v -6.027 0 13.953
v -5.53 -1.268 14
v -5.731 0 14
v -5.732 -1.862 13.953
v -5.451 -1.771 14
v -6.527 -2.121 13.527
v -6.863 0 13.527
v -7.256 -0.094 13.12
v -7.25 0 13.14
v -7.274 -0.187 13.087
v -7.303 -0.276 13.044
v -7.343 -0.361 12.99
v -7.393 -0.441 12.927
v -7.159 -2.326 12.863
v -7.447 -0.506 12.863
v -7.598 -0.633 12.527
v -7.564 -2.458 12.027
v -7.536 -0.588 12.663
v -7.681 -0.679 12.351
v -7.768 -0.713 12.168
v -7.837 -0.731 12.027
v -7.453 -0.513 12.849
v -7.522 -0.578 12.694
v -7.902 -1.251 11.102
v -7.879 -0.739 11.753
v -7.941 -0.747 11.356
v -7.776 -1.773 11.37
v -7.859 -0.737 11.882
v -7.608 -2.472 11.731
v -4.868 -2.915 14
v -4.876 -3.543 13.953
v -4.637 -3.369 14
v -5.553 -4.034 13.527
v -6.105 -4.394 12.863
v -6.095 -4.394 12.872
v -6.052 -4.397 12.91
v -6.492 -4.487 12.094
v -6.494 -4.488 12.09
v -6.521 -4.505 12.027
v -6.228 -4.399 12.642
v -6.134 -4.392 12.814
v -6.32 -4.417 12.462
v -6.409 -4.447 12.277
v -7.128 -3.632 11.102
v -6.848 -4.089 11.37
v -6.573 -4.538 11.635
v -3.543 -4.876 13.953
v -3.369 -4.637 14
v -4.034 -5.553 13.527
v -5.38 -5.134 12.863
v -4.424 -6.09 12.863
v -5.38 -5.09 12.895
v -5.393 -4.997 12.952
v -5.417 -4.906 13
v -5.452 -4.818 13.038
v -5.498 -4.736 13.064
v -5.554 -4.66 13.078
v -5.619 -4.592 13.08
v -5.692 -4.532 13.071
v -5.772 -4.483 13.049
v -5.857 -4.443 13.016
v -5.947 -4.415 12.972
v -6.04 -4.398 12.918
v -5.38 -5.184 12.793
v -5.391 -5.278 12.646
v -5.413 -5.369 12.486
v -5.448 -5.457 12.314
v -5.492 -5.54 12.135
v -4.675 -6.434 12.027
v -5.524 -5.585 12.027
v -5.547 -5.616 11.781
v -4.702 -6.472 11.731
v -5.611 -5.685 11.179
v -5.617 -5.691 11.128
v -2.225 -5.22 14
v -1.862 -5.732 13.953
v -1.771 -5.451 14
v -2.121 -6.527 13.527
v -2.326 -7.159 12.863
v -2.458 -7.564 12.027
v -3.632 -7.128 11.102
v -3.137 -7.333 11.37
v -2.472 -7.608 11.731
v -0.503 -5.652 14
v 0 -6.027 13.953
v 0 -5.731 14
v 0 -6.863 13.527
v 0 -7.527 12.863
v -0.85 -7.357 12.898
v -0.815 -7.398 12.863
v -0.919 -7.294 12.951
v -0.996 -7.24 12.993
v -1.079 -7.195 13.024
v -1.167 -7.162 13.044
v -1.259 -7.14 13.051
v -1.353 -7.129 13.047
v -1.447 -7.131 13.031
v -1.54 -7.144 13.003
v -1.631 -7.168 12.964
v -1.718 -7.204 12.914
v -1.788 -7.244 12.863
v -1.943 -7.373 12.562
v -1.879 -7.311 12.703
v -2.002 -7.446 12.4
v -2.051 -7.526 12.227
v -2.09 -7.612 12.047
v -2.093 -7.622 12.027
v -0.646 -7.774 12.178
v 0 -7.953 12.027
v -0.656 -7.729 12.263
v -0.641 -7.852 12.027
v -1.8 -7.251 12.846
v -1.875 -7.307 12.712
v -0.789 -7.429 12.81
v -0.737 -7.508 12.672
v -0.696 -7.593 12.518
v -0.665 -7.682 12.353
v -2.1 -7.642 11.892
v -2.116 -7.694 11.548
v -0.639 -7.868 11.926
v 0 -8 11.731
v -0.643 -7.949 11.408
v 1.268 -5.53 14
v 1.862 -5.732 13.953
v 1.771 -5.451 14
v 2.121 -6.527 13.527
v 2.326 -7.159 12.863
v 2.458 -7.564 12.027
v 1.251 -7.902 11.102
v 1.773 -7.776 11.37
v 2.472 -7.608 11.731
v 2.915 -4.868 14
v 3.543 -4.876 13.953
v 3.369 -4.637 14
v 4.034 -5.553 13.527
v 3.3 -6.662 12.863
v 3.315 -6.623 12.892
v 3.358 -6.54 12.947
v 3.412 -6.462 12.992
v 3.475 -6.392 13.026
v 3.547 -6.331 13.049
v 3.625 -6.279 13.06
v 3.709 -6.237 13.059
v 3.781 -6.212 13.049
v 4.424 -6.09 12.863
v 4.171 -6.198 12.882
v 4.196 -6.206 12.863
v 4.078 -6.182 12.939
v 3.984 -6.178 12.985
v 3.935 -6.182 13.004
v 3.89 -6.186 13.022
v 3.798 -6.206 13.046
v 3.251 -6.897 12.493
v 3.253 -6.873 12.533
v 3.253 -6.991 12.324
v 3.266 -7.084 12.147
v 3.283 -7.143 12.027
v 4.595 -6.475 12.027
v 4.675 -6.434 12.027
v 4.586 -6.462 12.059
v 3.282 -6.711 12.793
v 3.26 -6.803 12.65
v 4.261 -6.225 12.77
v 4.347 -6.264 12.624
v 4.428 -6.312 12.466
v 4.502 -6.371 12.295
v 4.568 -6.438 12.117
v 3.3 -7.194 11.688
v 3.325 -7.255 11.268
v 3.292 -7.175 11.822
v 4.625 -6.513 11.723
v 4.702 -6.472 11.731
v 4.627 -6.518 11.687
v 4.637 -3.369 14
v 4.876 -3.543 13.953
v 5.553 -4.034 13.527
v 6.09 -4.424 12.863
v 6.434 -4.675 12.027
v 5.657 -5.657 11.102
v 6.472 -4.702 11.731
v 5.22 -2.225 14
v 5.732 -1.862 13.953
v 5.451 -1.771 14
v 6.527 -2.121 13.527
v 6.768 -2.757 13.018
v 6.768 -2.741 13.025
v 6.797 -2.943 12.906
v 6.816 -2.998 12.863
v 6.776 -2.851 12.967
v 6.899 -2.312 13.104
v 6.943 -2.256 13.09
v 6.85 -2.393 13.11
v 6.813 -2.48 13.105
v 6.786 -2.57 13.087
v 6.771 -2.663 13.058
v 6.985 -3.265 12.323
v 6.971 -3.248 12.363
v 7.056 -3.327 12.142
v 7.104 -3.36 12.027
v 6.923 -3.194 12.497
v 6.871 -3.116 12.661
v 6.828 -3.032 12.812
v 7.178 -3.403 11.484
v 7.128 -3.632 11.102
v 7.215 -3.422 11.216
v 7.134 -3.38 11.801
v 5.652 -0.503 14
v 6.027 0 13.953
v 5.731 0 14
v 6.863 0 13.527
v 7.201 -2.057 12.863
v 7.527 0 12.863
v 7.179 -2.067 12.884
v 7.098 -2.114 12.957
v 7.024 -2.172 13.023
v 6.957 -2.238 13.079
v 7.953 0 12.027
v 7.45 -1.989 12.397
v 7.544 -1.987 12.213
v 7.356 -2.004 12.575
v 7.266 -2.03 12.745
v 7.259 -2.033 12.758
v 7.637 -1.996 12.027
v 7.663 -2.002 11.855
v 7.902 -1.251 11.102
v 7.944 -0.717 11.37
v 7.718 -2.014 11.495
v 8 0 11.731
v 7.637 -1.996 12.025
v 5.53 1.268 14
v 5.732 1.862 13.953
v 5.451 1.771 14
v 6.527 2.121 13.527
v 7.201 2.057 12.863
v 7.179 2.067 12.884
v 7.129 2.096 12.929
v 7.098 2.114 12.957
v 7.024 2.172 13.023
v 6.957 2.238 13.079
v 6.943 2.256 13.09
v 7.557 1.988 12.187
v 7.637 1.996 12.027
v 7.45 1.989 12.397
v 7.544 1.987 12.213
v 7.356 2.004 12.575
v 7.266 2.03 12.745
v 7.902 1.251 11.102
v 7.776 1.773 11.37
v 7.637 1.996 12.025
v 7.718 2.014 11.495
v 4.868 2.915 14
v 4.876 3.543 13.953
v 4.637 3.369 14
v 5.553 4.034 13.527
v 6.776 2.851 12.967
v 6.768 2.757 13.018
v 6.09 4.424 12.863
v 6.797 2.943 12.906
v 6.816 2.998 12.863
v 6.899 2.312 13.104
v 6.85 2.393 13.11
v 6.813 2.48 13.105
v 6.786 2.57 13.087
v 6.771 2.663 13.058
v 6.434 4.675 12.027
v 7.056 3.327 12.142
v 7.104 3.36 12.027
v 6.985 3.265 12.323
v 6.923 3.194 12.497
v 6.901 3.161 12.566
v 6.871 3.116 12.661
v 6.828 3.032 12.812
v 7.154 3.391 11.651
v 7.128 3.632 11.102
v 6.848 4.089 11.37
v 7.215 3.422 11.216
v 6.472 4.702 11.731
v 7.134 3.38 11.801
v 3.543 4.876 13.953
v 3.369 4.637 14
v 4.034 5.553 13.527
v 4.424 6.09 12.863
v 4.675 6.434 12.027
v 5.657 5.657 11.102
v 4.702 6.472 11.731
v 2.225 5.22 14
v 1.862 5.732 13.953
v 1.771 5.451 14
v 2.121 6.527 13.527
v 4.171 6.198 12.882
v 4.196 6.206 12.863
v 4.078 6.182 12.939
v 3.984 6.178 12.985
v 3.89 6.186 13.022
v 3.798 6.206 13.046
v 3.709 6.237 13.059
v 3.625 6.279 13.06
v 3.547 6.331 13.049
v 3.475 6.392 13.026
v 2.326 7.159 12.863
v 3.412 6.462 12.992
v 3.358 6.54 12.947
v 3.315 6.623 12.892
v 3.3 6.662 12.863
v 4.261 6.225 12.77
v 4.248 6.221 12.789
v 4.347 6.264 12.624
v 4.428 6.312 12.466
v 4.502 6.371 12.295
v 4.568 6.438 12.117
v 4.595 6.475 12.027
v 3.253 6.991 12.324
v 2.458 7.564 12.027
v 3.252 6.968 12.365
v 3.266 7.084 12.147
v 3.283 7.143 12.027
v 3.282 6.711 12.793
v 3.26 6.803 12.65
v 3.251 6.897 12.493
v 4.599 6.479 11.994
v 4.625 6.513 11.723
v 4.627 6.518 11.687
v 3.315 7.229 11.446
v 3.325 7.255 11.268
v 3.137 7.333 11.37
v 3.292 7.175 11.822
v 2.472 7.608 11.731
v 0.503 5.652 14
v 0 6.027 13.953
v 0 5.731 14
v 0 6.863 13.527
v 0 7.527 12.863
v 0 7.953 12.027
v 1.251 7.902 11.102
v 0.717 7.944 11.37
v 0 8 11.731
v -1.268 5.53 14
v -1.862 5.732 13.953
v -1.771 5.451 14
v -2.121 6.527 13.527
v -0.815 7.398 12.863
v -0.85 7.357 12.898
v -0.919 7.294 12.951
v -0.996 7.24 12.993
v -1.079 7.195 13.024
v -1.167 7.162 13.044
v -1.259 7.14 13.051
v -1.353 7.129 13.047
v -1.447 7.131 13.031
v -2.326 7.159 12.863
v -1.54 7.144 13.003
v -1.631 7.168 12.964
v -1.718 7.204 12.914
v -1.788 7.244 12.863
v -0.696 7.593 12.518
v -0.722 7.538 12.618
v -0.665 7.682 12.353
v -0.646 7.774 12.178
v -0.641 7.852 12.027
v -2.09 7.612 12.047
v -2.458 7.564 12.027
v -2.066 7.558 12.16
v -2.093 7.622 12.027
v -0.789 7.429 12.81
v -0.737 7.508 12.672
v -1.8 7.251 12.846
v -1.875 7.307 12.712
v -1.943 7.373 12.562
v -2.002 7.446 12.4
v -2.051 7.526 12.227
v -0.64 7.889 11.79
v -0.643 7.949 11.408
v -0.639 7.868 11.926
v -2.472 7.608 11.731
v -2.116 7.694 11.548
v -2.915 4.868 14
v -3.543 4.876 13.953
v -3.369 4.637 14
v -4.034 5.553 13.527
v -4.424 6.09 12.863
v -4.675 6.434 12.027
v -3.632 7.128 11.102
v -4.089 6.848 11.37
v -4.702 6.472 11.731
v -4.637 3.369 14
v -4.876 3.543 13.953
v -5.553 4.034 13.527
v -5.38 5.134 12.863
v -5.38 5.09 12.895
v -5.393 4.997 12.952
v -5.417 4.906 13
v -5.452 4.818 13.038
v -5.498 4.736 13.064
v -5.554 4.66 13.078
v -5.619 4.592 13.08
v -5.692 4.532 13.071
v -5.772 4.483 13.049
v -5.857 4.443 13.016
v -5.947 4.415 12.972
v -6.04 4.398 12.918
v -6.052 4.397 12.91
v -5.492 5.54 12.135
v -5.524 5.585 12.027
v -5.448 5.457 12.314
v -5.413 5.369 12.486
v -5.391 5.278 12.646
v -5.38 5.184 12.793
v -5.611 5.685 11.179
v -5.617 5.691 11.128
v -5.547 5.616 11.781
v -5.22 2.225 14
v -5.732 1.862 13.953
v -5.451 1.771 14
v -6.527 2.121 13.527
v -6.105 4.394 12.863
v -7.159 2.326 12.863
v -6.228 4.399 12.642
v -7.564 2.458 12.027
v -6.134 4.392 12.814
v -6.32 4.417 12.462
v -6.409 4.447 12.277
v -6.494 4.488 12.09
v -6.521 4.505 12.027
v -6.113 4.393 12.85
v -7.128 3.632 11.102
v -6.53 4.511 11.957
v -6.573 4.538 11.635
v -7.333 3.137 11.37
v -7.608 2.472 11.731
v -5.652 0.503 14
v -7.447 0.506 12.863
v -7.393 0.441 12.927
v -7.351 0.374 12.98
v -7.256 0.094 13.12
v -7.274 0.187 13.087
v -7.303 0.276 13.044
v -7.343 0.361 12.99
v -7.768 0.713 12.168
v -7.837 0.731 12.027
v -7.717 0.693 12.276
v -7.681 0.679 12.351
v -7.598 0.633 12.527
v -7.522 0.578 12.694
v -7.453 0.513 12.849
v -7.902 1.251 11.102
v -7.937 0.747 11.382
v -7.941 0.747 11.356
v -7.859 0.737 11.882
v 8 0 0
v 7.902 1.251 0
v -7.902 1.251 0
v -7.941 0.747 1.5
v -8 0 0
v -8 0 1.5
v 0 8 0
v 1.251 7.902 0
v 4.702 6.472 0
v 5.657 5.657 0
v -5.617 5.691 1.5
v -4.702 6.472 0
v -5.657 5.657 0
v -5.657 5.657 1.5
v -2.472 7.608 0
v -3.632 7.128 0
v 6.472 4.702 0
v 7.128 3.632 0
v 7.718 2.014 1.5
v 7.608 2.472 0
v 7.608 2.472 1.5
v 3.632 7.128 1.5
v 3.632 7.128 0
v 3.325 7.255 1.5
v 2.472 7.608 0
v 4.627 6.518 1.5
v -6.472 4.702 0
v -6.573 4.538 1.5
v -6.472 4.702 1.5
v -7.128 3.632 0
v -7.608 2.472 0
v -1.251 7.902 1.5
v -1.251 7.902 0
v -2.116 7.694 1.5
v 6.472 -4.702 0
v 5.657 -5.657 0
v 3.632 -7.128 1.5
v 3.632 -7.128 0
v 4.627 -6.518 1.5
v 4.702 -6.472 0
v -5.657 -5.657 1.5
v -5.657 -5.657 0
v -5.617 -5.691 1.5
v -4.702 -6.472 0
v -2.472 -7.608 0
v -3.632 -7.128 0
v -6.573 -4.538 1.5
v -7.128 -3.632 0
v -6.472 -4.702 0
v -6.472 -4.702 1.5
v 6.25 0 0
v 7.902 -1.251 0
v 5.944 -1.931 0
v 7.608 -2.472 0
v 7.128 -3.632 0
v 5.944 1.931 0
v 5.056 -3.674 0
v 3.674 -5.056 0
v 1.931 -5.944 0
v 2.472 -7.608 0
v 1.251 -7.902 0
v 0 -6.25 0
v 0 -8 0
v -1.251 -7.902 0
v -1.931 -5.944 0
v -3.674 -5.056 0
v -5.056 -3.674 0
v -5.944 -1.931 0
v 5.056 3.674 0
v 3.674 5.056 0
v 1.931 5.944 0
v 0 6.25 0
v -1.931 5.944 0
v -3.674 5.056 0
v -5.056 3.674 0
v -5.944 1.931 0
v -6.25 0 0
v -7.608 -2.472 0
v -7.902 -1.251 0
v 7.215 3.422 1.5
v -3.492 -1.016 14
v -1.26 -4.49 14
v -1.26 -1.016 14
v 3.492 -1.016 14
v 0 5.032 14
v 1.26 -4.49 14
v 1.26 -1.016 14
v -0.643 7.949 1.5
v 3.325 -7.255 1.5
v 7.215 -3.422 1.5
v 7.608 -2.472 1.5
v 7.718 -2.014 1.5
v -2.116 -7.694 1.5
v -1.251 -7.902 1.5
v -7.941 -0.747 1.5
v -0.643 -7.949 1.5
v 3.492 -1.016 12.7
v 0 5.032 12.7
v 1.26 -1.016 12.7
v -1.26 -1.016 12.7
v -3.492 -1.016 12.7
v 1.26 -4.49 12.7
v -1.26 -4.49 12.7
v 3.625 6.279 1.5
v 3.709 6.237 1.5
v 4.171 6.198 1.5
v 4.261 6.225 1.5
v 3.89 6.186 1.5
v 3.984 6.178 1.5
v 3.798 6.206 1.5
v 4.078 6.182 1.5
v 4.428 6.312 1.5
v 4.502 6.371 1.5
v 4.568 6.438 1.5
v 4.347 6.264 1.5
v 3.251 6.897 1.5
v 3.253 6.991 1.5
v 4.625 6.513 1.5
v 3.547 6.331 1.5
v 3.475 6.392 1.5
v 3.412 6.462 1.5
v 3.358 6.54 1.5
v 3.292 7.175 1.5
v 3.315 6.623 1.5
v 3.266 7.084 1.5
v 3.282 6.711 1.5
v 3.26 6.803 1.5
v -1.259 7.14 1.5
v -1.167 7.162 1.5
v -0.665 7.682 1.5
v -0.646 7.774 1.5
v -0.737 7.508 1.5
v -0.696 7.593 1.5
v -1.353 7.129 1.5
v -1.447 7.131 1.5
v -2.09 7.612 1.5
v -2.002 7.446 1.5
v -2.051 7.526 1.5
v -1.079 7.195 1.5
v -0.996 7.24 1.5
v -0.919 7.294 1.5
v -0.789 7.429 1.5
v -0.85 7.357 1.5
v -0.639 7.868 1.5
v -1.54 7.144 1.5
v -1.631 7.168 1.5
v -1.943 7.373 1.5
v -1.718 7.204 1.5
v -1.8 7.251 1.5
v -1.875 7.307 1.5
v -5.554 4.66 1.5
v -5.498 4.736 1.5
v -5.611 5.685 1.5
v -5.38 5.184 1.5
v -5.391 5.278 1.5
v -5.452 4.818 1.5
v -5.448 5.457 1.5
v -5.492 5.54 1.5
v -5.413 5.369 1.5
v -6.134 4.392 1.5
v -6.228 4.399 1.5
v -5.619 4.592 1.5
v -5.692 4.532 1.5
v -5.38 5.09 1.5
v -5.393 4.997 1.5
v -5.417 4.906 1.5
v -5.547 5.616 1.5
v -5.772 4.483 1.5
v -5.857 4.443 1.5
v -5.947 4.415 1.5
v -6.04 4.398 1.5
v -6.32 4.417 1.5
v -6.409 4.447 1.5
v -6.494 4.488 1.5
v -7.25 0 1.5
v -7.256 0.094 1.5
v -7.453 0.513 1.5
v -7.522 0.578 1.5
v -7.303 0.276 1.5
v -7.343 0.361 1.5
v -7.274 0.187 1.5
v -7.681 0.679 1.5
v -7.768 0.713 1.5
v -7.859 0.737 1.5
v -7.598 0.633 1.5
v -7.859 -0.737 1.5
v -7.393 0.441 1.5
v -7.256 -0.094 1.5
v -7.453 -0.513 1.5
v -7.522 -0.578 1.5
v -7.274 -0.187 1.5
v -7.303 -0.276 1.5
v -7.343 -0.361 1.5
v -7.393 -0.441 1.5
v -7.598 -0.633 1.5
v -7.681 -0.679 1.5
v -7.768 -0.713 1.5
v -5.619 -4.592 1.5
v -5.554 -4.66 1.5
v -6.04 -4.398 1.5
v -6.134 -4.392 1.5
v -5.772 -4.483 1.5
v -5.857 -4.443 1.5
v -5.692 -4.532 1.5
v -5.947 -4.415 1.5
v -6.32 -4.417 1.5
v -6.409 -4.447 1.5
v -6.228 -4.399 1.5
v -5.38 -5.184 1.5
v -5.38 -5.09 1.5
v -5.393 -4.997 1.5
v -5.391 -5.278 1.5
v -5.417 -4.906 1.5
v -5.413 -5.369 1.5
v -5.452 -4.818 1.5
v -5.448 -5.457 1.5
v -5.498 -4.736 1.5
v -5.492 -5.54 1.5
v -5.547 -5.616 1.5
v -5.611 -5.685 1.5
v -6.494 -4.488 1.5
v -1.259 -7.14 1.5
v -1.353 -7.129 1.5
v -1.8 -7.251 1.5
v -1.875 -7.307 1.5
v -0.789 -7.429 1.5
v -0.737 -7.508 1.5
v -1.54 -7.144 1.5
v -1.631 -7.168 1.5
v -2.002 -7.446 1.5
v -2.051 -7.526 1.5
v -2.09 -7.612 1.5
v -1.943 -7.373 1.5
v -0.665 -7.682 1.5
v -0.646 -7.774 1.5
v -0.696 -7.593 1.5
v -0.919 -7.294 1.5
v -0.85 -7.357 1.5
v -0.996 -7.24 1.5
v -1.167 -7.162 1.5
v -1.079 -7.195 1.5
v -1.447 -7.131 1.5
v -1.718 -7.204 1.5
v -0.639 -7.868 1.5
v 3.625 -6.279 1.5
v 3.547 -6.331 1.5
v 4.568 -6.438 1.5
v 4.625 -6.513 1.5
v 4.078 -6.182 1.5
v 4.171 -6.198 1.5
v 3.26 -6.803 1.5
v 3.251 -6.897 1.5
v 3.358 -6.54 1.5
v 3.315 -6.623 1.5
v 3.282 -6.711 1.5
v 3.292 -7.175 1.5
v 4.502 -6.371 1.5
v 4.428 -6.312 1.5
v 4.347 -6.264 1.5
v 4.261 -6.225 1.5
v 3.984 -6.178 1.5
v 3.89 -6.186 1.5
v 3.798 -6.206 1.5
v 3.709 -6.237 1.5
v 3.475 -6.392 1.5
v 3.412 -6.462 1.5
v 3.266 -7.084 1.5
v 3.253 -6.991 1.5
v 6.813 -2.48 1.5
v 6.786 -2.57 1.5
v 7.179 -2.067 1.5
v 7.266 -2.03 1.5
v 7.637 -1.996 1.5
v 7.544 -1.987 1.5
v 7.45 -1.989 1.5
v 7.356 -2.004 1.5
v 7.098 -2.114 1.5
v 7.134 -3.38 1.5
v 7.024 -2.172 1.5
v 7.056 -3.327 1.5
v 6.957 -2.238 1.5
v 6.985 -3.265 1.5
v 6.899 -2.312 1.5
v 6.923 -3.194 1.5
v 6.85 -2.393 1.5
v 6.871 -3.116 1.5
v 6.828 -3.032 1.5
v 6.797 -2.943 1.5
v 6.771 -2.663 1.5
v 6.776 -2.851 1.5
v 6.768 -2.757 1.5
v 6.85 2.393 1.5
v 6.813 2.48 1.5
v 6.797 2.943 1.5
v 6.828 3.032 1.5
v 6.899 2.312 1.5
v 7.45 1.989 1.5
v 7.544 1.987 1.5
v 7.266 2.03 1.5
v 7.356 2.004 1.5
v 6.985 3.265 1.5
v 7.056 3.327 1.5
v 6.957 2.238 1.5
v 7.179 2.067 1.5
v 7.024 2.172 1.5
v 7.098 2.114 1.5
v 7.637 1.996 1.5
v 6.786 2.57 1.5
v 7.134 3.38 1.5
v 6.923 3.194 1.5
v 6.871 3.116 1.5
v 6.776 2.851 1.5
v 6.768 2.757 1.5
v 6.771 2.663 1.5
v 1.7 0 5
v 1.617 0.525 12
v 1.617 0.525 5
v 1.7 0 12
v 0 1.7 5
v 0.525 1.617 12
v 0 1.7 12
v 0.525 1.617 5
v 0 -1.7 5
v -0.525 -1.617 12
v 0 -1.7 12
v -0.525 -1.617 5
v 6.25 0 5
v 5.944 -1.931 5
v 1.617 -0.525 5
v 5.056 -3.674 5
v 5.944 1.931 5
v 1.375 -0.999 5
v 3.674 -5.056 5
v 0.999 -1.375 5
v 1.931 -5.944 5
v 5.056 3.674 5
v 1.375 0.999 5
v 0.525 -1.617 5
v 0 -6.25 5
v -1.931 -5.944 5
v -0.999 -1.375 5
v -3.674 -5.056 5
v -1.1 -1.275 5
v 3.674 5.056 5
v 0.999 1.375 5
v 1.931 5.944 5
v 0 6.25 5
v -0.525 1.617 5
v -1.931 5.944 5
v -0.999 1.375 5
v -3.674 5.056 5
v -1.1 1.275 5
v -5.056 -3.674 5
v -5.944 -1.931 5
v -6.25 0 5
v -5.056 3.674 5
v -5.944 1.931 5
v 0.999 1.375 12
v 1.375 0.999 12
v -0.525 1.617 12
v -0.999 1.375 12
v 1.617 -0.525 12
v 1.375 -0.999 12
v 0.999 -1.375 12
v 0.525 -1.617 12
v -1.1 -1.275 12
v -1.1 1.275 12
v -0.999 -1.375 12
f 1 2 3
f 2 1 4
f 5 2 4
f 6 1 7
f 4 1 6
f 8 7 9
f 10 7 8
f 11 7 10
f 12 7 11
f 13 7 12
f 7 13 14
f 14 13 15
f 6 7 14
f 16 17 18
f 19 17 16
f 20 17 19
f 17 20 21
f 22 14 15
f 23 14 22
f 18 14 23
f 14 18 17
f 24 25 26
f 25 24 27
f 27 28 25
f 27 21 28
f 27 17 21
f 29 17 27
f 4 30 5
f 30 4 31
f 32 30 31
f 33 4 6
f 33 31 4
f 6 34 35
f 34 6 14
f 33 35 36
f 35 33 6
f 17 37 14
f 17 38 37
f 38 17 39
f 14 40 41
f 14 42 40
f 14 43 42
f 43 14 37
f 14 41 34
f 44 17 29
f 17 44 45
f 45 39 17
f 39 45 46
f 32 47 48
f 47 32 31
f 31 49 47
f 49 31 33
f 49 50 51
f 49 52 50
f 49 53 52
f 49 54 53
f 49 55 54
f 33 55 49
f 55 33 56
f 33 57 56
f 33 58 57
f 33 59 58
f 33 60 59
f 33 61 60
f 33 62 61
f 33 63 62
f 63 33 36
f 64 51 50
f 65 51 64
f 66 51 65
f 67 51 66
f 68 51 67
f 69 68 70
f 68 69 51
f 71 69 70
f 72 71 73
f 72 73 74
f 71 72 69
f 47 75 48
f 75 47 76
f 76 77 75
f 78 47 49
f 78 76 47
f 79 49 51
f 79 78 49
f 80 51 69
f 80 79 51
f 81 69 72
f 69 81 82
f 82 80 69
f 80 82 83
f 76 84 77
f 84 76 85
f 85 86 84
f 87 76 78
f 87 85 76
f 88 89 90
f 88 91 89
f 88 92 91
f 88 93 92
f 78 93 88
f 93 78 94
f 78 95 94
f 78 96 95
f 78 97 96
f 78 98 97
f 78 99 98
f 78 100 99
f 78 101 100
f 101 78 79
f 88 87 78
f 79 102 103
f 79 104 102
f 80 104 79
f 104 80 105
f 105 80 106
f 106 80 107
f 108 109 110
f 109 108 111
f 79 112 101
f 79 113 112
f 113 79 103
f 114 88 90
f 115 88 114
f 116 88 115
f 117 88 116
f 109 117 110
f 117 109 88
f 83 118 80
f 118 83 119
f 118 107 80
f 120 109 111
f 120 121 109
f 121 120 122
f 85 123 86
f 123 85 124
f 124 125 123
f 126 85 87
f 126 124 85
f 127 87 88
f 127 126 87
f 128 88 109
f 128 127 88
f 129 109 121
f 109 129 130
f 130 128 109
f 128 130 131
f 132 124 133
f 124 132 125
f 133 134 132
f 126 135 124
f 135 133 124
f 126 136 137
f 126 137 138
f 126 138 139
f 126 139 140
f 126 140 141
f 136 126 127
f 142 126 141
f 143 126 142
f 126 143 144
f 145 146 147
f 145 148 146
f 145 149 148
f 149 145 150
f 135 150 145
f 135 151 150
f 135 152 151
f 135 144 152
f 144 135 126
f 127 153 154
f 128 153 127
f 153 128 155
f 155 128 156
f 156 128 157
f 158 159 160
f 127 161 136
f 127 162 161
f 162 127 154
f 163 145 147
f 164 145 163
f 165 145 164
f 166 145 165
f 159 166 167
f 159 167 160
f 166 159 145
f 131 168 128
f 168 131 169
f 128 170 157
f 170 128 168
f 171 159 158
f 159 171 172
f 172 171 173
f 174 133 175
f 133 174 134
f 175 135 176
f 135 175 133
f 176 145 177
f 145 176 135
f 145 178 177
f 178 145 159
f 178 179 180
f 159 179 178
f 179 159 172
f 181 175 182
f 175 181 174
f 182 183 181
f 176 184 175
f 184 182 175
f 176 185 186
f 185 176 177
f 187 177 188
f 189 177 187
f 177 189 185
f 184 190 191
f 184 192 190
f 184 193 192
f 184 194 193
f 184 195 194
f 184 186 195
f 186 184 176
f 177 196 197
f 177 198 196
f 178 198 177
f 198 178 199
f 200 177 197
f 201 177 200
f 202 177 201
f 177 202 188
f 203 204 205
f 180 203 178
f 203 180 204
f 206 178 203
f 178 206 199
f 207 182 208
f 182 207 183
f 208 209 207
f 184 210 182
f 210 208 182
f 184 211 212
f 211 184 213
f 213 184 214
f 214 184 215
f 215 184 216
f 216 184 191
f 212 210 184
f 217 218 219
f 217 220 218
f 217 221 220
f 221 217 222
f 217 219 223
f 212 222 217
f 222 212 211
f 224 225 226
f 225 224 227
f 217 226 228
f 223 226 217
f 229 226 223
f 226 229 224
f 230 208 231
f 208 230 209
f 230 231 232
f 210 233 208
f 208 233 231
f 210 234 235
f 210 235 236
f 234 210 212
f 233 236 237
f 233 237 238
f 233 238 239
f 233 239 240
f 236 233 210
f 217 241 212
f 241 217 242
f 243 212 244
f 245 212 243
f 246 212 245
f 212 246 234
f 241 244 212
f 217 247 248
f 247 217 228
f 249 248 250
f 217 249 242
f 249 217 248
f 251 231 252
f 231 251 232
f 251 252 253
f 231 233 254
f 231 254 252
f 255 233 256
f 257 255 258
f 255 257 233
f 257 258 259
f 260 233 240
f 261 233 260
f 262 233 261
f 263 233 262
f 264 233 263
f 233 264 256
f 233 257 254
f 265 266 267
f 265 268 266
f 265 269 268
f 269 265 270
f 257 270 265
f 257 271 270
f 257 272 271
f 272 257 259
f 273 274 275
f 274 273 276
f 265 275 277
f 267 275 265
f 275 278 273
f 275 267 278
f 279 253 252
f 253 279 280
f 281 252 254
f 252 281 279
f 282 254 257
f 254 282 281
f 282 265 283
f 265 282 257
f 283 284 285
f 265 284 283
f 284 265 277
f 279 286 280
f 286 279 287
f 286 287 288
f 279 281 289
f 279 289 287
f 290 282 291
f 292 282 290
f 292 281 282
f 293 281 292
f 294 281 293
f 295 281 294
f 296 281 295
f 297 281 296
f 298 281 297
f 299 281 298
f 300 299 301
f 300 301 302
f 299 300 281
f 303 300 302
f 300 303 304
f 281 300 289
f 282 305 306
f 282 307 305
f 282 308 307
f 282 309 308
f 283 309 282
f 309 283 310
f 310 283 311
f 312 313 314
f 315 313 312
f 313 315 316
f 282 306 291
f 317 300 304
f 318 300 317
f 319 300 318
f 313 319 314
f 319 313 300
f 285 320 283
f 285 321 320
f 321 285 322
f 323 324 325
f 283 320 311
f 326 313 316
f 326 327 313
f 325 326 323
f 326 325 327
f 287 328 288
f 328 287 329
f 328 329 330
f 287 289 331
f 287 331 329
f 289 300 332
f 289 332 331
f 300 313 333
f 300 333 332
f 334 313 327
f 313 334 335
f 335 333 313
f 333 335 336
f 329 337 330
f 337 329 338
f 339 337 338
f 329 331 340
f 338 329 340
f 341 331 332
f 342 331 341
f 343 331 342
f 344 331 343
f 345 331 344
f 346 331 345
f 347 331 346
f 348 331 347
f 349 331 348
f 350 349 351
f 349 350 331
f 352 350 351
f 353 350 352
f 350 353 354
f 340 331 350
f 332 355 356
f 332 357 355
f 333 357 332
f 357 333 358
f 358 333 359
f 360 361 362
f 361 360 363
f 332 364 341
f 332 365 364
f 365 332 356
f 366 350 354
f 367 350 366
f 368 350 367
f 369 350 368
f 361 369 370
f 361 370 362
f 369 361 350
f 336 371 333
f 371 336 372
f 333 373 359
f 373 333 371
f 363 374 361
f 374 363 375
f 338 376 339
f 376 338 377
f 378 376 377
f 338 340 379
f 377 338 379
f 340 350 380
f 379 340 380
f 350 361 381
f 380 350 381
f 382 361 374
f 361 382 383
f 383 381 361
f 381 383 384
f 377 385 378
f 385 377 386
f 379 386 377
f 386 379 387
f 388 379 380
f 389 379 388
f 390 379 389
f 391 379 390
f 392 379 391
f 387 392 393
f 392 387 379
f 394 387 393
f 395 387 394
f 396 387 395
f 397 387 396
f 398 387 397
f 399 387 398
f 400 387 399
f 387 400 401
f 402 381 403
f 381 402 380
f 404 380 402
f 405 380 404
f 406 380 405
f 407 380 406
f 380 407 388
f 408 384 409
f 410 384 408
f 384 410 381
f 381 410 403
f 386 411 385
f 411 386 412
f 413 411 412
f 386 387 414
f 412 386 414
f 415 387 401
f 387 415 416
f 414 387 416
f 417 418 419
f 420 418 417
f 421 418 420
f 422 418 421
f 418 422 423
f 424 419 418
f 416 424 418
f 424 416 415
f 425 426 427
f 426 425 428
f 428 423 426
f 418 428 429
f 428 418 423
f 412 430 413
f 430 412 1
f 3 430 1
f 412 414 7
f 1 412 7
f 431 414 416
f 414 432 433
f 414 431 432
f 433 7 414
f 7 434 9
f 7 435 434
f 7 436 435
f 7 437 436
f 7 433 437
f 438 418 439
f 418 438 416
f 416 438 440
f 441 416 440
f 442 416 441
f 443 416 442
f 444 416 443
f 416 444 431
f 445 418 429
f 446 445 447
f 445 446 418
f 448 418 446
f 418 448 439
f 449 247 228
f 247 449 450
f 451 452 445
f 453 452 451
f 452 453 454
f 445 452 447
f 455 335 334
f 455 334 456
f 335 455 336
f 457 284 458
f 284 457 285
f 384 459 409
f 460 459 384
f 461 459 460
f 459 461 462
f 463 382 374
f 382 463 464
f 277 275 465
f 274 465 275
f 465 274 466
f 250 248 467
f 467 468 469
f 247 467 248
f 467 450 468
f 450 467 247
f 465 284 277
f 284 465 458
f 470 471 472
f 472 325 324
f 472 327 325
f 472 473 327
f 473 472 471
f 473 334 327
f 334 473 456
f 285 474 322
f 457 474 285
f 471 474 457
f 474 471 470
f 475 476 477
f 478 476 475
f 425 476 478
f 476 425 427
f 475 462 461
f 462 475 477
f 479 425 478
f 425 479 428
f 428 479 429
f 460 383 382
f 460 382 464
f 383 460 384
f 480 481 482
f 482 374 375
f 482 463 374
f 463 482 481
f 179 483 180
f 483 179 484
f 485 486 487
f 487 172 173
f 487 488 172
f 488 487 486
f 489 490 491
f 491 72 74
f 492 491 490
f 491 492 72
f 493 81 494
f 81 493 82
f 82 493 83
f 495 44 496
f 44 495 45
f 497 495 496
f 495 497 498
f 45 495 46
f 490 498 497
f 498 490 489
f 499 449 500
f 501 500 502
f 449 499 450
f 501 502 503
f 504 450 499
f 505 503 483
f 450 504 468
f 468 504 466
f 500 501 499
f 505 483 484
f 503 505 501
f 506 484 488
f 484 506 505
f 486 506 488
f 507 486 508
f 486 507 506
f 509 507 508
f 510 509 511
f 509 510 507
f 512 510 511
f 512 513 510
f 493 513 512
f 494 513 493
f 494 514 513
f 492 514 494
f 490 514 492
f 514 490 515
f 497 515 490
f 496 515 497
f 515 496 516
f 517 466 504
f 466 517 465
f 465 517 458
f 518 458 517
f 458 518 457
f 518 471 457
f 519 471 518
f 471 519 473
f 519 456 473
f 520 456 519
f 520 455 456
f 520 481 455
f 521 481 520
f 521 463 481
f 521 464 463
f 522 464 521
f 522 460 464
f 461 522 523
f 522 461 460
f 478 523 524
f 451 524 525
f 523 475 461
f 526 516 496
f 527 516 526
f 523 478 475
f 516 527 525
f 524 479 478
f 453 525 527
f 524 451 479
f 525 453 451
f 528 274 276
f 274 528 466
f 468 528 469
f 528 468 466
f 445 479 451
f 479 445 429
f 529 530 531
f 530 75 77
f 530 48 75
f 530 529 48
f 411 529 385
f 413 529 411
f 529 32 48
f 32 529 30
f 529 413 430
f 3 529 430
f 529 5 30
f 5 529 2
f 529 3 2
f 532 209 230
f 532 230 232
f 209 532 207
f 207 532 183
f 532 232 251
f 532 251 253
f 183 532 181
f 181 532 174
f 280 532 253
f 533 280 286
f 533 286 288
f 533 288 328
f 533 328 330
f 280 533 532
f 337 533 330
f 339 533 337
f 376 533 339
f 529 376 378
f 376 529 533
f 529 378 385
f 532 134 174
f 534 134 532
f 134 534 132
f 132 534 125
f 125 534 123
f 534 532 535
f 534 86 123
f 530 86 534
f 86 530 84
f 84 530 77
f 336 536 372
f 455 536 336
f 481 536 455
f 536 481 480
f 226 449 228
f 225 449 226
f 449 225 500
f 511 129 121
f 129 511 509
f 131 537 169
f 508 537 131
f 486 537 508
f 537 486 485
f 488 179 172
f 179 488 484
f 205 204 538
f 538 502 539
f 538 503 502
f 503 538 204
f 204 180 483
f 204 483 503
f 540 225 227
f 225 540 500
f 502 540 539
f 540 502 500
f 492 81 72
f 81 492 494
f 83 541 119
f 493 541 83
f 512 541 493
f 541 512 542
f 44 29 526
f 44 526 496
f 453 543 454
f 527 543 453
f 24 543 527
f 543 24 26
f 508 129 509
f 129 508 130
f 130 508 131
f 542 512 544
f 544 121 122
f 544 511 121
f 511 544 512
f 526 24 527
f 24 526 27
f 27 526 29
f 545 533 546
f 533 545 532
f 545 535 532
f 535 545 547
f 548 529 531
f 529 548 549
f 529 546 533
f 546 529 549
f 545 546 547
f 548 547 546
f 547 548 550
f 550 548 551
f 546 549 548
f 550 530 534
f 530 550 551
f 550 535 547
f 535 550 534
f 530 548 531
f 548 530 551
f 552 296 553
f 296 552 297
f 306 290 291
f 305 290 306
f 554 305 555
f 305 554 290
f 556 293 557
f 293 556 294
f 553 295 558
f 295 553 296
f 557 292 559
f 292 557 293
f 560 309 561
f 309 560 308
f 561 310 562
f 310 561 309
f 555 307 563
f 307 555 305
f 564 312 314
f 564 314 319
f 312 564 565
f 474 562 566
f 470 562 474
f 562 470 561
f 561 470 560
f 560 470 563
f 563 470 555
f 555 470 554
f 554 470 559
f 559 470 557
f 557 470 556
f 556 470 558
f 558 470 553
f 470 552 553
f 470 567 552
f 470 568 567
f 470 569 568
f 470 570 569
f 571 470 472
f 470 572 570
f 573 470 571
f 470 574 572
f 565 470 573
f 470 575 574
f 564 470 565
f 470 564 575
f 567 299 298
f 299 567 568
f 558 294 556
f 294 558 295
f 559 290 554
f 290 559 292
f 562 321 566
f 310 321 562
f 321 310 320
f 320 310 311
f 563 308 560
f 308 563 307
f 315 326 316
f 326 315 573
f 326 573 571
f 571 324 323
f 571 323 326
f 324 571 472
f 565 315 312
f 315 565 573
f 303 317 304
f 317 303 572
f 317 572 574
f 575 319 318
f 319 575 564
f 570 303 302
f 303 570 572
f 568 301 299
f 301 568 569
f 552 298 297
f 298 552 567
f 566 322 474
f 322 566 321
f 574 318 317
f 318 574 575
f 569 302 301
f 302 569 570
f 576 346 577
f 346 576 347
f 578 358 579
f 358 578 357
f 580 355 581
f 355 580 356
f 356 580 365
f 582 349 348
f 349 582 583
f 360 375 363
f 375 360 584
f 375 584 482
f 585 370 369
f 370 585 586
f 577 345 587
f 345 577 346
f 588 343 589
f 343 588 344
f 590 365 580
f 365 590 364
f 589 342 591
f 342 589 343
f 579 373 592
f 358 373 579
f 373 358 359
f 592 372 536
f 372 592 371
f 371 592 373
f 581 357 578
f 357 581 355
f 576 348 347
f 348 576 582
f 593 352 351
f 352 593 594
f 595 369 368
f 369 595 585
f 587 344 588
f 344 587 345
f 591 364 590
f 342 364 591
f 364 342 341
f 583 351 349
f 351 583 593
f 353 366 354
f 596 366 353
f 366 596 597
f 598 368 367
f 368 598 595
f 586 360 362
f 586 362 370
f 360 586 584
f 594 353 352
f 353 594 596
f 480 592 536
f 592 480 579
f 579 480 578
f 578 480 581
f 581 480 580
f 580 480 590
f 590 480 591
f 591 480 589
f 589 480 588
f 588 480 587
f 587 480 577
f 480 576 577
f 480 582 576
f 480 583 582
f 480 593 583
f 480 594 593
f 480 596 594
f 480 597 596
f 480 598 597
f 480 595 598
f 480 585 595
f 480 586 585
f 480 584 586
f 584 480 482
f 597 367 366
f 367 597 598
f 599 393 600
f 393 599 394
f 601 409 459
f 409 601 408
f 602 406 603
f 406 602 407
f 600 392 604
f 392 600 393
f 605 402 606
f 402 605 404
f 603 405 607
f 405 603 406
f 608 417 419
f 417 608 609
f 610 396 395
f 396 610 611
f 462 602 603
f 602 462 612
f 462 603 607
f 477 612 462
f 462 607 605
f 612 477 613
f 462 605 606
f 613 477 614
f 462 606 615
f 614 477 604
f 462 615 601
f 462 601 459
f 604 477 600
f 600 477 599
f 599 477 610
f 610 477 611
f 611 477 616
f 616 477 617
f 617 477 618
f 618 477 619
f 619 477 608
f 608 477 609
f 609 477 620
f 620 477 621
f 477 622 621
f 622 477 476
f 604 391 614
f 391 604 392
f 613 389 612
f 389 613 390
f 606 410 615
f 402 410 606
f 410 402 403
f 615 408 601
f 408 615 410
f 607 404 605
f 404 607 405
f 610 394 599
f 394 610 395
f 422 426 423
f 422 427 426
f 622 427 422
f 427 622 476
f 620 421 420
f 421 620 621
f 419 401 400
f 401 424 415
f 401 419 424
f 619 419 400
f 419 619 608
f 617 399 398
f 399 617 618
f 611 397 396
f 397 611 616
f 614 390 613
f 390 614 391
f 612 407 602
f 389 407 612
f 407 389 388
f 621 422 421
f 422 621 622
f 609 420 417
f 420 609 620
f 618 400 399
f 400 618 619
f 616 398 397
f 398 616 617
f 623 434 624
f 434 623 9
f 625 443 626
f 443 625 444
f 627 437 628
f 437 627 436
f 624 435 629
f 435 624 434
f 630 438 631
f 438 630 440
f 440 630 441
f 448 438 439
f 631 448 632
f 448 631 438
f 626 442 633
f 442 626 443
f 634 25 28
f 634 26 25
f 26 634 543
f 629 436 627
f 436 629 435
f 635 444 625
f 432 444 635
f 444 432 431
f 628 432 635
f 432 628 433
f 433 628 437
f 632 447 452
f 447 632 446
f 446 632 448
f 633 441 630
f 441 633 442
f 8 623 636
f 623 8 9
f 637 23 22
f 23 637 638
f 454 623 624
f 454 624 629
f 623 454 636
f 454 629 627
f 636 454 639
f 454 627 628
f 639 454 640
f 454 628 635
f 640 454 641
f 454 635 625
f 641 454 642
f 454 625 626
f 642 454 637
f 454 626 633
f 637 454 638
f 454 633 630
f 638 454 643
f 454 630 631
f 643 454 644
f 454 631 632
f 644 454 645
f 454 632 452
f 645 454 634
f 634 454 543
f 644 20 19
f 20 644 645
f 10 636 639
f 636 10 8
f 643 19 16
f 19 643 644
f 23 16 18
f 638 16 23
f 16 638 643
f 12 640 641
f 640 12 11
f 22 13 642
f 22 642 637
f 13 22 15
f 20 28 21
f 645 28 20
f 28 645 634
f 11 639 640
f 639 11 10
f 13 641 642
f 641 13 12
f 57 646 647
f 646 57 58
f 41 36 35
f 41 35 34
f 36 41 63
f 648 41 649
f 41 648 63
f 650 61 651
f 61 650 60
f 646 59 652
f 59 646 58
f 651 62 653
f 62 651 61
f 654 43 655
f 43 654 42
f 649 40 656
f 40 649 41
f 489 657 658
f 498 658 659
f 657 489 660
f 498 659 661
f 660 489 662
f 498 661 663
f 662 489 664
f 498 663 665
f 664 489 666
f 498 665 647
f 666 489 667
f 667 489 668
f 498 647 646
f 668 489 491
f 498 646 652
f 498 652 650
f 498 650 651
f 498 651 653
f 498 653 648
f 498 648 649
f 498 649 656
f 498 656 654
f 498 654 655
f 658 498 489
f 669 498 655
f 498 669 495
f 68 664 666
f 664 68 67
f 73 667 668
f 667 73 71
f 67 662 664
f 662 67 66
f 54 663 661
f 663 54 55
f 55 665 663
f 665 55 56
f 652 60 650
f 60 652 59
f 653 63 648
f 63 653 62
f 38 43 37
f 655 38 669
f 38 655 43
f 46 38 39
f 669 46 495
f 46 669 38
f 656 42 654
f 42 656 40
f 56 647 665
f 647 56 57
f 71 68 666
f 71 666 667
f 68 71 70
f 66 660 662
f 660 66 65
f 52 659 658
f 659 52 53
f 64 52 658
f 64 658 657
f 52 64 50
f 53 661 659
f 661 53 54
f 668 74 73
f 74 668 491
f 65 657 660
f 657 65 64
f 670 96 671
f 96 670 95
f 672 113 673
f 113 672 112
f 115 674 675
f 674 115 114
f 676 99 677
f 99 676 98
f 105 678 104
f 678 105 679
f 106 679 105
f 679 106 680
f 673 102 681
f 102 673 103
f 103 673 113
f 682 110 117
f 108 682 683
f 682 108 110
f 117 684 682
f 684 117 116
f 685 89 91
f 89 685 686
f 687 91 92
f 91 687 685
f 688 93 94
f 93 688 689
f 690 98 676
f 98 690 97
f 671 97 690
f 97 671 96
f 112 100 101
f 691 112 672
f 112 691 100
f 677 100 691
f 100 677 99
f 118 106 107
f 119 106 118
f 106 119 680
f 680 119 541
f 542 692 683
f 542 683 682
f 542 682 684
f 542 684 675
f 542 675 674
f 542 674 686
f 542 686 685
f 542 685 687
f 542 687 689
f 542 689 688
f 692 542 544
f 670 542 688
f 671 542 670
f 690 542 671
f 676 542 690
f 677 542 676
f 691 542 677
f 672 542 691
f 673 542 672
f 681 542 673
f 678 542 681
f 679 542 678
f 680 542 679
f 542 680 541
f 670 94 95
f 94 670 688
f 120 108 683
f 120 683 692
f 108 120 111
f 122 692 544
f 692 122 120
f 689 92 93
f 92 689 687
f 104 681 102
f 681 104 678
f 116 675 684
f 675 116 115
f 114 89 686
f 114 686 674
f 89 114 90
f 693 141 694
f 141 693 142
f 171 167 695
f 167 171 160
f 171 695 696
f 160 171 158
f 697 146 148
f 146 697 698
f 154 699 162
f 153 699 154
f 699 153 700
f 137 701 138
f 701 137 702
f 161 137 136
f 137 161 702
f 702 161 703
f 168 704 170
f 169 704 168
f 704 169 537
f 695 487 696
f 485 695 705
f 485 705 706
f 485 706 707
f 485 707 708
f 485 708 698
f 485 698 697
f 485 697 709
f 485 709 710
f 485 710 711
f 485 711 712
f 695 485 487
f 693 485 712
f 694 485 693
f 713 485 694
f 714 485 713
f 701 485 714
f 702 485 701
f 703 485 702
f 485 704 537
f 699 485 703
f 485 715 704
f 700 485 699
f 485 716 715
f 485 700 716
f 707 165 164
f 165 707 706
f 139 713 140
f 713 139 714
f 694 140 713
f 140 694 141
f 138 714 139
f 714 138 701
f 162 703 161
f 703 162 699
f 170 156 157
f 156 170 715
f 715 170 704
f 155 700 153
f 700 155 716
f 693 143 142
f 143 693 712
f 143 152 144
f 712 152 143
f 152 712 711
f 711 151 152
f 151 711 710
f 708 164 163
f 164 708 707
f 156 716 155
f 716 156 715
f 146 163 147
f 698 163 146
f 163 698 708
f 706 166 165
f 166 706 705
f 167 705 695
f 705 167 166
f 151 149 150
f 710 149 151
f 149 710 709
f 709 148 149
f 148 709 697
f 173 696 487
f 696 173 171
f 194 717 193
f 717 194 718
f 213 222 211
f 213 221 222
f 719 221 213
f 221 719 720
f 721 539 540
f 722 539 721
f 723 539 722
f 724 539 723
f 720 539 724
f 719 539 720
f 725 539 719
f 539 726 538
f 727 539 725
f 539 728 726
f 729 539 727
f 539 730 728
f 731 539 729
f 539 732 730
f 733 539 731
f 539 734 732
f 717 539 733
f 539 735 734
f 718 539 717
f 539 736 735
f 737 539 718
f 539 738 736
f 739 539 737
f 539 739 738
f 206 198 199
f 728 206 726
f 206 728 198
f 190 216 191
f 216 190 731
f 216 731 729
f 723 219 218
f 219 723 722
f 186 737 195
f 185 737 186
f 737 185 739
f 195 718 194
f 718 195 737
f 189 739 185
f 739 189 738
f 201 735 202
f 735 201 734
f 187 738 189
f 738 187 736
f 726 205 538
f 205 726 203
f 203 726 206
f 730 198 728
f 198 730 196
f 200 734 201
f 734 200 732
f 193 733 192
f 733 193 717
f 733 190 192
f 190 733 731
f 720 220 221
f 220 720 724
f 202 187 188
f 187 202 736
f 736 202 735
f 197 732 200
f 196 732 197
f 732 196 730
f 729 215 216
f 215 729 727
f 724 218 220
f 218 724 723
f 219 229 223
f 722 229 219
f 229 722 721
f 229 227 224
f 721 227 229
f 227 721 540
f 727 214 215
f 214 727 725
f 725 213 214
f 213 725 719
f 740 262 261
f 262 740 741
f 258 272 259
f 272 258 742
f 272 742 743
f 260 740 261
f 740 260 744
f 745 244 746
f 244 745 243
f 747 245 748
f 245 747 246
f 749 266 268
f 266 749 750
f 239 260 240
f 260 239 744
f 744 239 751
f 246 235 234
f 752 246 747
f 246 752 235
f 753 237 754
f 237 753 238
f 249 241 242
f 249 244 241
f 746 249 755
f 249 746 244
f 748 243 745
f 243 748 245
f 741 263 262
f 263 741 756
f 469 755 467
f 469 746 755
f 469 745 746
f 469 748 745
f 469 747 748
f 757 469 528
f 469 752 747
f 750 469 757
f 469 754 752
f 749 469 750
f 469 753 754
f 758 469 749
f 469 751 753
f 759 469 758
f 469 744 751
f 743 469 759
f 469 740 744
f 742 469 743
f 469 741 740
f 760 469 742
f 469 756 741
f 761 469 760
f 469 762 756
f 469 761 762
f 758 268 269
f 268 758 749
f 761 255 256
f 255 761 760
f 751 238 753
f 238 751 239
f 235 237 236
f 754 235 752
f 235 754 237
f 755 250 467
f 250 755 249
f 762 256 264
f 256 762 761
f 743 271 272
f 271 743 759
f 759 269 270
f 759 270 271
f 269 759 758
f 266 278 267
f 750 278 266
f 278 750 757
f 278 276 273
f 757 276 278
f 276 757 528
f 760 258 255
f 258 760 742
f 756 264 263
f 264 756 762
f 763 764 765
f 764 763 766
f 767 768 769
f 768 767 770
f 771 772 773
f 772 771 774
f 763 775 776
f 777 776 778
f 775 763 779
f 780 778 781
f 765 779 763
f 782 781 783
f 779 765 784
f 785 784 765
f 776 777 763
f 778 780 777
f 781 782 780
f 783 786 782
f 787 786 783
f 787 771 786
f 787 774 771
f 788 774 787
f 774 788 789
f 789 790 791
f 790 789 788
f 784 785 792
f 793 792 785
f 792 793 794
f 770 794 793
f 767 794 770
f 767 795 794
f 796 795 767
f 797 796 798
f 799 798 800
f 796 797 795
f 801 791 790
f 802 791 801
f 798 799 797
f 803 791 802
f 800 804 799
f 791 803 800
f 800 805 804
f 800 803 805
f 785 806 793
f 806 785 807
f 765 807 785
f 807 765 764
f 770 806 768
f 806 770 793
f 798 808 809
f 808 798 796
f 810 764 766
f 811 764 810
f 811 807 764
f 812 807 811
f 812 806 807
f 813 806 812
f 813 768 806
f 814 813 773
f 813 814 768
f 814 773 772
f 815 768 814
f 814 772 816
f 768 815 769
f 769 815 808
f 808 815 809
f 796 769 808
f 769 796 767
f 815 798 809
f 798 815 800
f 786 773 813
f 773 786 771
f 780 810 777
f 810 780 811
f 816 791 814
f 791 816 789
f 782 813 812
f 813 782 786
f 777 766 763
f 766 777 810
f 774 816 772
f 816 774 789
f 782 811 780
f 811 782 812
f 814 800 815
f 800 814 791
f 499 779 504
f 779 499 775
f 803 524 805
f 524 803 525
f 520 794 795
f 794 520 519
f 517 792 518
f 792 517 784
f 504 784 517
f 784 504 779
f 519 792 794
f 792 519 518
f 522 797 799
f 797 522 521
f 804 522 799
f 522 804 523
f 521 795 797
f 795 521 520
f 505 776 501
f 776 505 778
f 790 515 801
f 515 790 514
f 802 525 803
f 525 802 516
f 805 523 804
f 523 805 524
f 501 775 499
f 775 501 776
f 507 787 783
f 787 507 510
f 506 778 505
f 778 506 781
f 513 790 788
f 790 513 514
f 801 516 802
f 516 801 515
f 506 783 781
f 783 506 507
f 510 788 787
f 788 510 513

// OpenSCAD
/*

Parametric Potentiometer Knob Generator
version 1.4
2013 Steve Cooley
http://sc-fa.com
http://beatseqr.com
http://hapticsynapses.com

parametric potentiometer knob generator by steve cooley is licensed under a Creative Commons Attribution-NonCommercial-ShareAlike 3.0 Unported License. Based on a work at sc-fa.com. Permissions beyond the scope of this license may be available at http://sc-fa.com/blog/contact.

view terms of the license here:
http://creativecommons.org/licenses/by-nc-sa/3.0/


version history
---------------
1.4 2013-07-16 added an additive OR subtractive pill shaped indicator type
1.3 2013-04-01 updated for more awesome Thingiverse Customizer
1.2 2013-01-09 updated for Thingiverse Customizer
1.1 2012-04-12 fixed the arrow indicator code to be more robust and easier to adjust parameters for.
1.0 2012-03-?? initial release.


*/

/* [Physical attributes] */

bottom_spaceH=5;
bottom_spaceD=12.5;
layerH=0;

// All values are in Millimeters!  How big the top of the knob is:
01_knob_diameter_top = 16; //[10:100]
knob_radius_top = 01_knob_diameter_top / 2;

// How big the bottom of the knob is:
02_knob_diameter_bottom = 16; // [10:100]
knob_radius_bottom = 02_knob_diameter_bottom / 2;

// how tall the knob is:
03_knob_height = 14; // [5:50]
knob_height = 03_knob_height / 1;

// how smooth or geometric the knob is:
04_knob_smoothness = 40; // [3:40]
knob_smoothness = 04_knob_smoothness / 1;

// (measure the potentiometer shaft with calipers and remember to add a bit for shrinkage.)
05_shaft_diameter = 3.4; // this could be a slider if precision were available
shaft_radius = 05_shaft_diameter / 2;

// how much of the shaft the knob should allow space inside for:
06_shaft_height = 12; // [1:40]
shaft_height = 06_shaft_height / 1;

// higher is smoother
07_shaft_smoothness = 20; // [3:20]
shaft_smoothness = 07_shaft_smoothness / 1;

// some potentiometers have a flat surface on the shaft to allow for the use of a set screw.
08_shaft_hole_is_flatted = "true"; // [true,false]

// ignore if no flat is needed.
09_shaft_hole_flat_size = 2.8; // this could be a slider if precision were available
flat_size = 09_shaft_hole_flat_size / 1;

/* [Set screw] */

// some potentiometers need to have their knobs affixed with a set screw.
10_set_screw = "false"; //[true,false]

// in MM:
11_set_screw_diameter = 3; // [0:8]
set_screw_radius = 11_set_screw_diameter / 2;

// how deep into the knob, from the side:
12_set_screw_depth = 9; // [0:20]
set_screw_depth = 12_set_screw_depth / 1;

// from the top:
13_set_screw_height = 4; // [0:20]
set_screw_height = 13_set_screw_height / 1;

// higher is smoother:
14_quality_of_set_screw = 20; // [0:20]
quality_of_set_screw = 14_quality_of_set_screw / 1;

/* [Decorations] */

// thanks to http://www.iheartrobotics.com/ for the articles!
15_top_edge_smoothing = "true"; // [true,false]

// how big of a smoothing radius to apply
16_top_edge_smoothing_radius = 3.0; // [1:10]
smoothing_radius = 16_top_edge_smoothing_radius / 1;

// Number of facets for the rounding cylinder
17_top_edge_smoothing_smoothness = 20.0; // [1:40]
smooth = 17_top_edge_smoothing_smoothness / 1;

ct = -0.1 / 1; 							// circle translate? not sure.
circle_radius = knob_radius_top / 1;  	// just match the top edge radius
circle_height = 1 / 1; 					// actually.. I don't know what this does.
pad = 0.2 / 1;							// Padding to maintain manifold



/* [External indicator] */

// this is a corner edge of a cube sticking out of the cylinder at the bottom, you can use it instead of the arrow shaped cutout in the top if you like. Or both.
18_pointy_external_indicator = "false"; // [true,false]


// how tall should the indicator be, from the bottom:
19_pointy_external_indicator_height = 3; // [1:50]
pointy_external_indicator_height = 19_pointy_external_indicator_height / 1;

// how far out the indicator should poke out:
20_pointy_external_indicator_pokey_outey_ness = 1.0;
pointy_external_indicator_pokey_outey_ness = 20_pointy_external_indicator_pokey_outey_ness * 1;

pokey_outey_value = pointy_external_indicator_pokey_outey_ness - 1 - pad;
pokey_outey = [pokey_outey_value, pokey_outey_value,0];

// there's an arrow shaped hole you can have. There aren't a lot of controls for this.
// please feel free to improve on this script here.

/* [Pill-shaped indicator] */

// there's an arrow shape you can have in the top of the knob.
00_pill_indicator = "false"; // [true,false]

// add or subtract the pill shape?
00_pill_add_or_subtract = "add"; // [add,subtract]

// relative scale of the pill shape:
00_pill_scale = 1.0;

// height of the pill shape:
00_pill_height = 12.0;

// relative scale of length of the pill shape:
00_pill_length = 2.5;

// where to put the arrow, x:
00_pill_location_x = 0.0;

// where to put the arrow, y:
00_pill_location_y = 5.0;

// where to put the arrow, z:
00_pill_location_z = 0.0;

pill_translate = [00_pill_location_x,00_pill_location_y,00_pill_location_z];


/* [Internal Arrow indicator] */

// there's an arrow shape you can have in the top of the knob.
21_top_of_knob_arrow_indicator = "true"; // [true,false]

// scale the arrow head:
22_arrow_head_scale = 1.4;
arrow_scale_head = 22_arrow_head_scale / 1;

// scale the arrow shaft:
23_arrow_shaft_scale = 0.7;
arrow_scale_shaft = 23_arrow_shaft_scale / 1;

// how big the overall arrow indicator should be:
24_arrow_indicator_scale = 1.2;
arrow_indicator_scale = 24_arrow_indicator_scale / 1;

// where to put the arrow, x:
25_arrow_location_x = 0.0;

// where to put the arrow, y:
26_arrow_location_y = 1.0;

// where to put the arrow, z:
27_arrow_location_z = 14.5;

arrow_indicator_translate = [25_arrow_location_x,26_arrow_location_y,27_arrow_location_z];



/* [Sphere Indentations] */

// for spherical indentations, set the quantity, quality, size, and adjust the placement
28_indentations_sphere = "false"; // [true,false]

29_sphere_number_of_indentations = 12; // [1:50]
sphere_number_of_indentations = 29_sphere_number_of_indentations / 1;

30_sphere_quality_of_indentations = 40; // [1:100]
sphere_quality_of_indentations = 30_sphere_quality_of_indentations / 1;

31_size_of_sphere_indentations = 4; // [1:20]
size_of_sphere_indentations = 31_size_of_sphere_indentations / 1;

// the first number in this set moves the spheres in or out. smaller is closer to the middle
32_sphere_indentation_location_x = 12.0;

// the second number in this set moves the spheres left or right
33_sphere_indentation_location_y = 00.0;

// the third number in this set moves the speheres up or down
34_sphere_indentation_location_z = 15.0;

translation_of_sphere_indentations = [32_sphere_indentation_location_x,33_sphere_indentation_location_y,34_sphere_indentation_location_z];

// in case you are using an odd number of indentations, you way want to adjust the starting angle so that they align to the front or set screw locations.
35_sphere_indentation_starting_rotation = 30; // [-90:90]
sphere_starting_rotation = 35_sphere_indentation_starting_rotation / 1 + 90;

/* [Cylinder Indentations] */

// for cylinder indentations, set quantity, quality, radius, height, and placement
36_indentations_cylinder = "true"; // [true,false]

37_number_of_cylinder_indentations = 9; // [1:40]
cylinder_number_of_indentations = 37_number_of_cylinder_indentations / 1;

// higher is smoother:
38_smoothness_of_cylinder_indentations = 50; // [3:100]
cylinder_quality_of_indentations = 38_smoothness_of_cylinder_indentations / 1;

39_diameter_of_top_of_the_cylinder = 1.5; // [1:20]
radius_of_cylinder_indentations_top = 39_diameter_of_top_of_the_cylinder / 2;

40_diameter_of_bottom_of_the_cylinder = 1.5;  // [1:20]
radius_of_cylinder_indentations_bottom = 40_diameter_of_bottom_of_the_cylinder / 2;

41_height_of_cylinder_indentations = 15.0; // [0:40]
height_of_cylinder_indentations = 41_height_of_cylinder_indentations / 1;

// this moves the cylinders in or out from the center
42_position_of_cylinder_x = -0.0; //[-20:20]

// this moves the cylinders left or right
43_position_of_cylinder_y = 0.0; //[-20:20]

// this moves the cylinders up or down
44_position_of_cylinder_z = -5.0; //[-20:20]

translation_of_cylinder_indentations = [42_position_of_cylinder_x,43_position_of_cylinder_y,44_position_of_cylinder_z];

45_cylinder_starting_rotation = -30; // [-90:90]
cylinder_starting_rotation = 45_cylinder_starting_rotation / 1 - 90;


// these are some setup variables... you probably won't need to mess with them.
negative_knob_radius = knob_radius_bottom*-1;


// this is the main module. It calls the submodules.
make_the_knob();

module make_the_knob()
{
difference()
{
	union()
	{
	difference()
		{
		difference()
			{
		
			difference() 
				{
				difference() 
					{
					
					union()
						{
						
						difference()
							{
							// main cylinder
							cylinder(r1=knob_radius_bottom,r2=knob_radius_top,h=knob_height, $fn=knob_smoothness);
							
							smoothing();				
		
							}
				
						external_direction_indicator();	
						}
					
					}
					
				set_screw_hole();
				}
			
			if(00_pill_add_or_subtract == "subtract")
				{
				pill();
				}
			arrow_indicator();
			indentations();
			}
		
	}
	if(00_pill_add_or_subtract == "add")
							{
							pill();
							}
	
	}
shaft_hole();
bottom_space();    
}

}
module smoothing() {

// smoothing the top
				if(15_top_edge_smoothing == "true")
					{		
						translate([0,0,knob_height])
						rotate([180,0,0])
						difference() {
							rotate_extrude(convexity=10,  $fn = smooth)
							translate([circle_radius-ct-smoothing_radius+pad,ct-pad,0])
							square(smoothing_radius+pad,smoothing_radius+pad);
	
							rotate_extrude(convexity=10,  $fn = smooth)
							translate([circle_radius-ct-smoothing_radius,ct+smoothing_radius,0])
							circle(r=smoothing_radius,$fn=smooth);
							}	
					}
}

module external_direction_indicator() {

				if(18_pointy_external_indicator == "true")
						{
						
						
						// outer pointy indicator
						rotate([0,0,45])
						translate(pokey_outey)
						// cube size of 8 minimum to point out
						cube(size=[knob_radius_bottom,knob_radius_bottom,pointy_external_indicator_height],center=false);
						}

}

module shaft_hole() {
				// shaft hole
				difference()
					{
					
					// round shaft hole
					translate([ 0, 0, bottom_spaceH+layerH]) 
					cylinder(r=shaft_radius,h=shaft_height-bottom_spaceH, $fn=shaft_smoothness);
					
					if(08_shaft_hole_is_flatted  == "true")
						{
						// D shaft shape for shaft cutout
						rotate( [0,0,90]) 
						translate([-shaft_radius,-shaft_radius+flat_size,bottom_spaceH]) 
						cube(size=[shaft_radius*2,shaft_radius*2,shaft_height-bottom_spaceH-layerH],center=false);
                        //cube(size=[flat_size,10,13],center=false);
						}
					}
}
module bottom_space() {
    translate([ 0, 0, -1]) 
	cylinder(d=bottom_spaceD,h=bottom_spaceH+1, $fn=shaft_smoothness);				
}

module set_screw_hole() {

			if(10_set_screw == "true")
				{
				// set screw hole
				rotate ([90,0,0])
				translate([ 0, set_screw_height, 1 ])
				cylinder(r=set_screw_radius,h=set_screw_depth, $fn=quality_of_set_screw);
				}
}

module arrow_indicator() {
		if(21_top_of_knob_arrow_indicator == "true")
			{
			translate(arrow_indicator_translate)
			// begin arrow top cutout
			// translate([(knob_radius/2),knob_height,knob_height])
			rotate([90,0,45])
			scale([arrow_indicator_scale*.3,arrow_indicator_scale*.3,arrow_indicator_scale*.3])
			union()
				{			  
				rotate([90,45,0])
				scale([arrow_scale_head,arrow_scale_head,1])
				cylinder(r=8, h=10, $fn=3, center=true);
				rotate([90,45,0])
				translate([-10,0,0])
				scale([arrow_scale_shaft,arrow_scale_shaft,1])
				cube(size=[15,10,10],center=true);
				}
			}
}

module indentations() {

if(28_indentations_sphere == "true")
			{
			for (z = [0:sphere_number_of_indentations]) 
				{
				rotate([0,0,sphere_starting_rotation+((360/sphere_number_of_indentations)*z)])
				translate(translation_of_sphere_indentations)
				sphere(size_of_sphere_indentations, $fn=sphere_quality_of_indentations); 
				}
			}
if(36_indentations_cylinder == "true")
			{
			for (z = [0:cylinder_number_of_indentations]) 
				{
				rotate([0,0,cylinder_starting_rotation+((360/cylinder_number_of_indentations)*z)])
				
				translate([negative_knob_radius,0,knob_height])
				translate(translation_of_cylinder_indentations)
				cylinder(r1=radius_of_cylinder_indentations_bottom, r2=radius_of_cylinder_indentations_top, h=height_of_cylinder_indentations, center=true, $fn=cylinder_quality_of_indentations); 
				}
			}
		}

module pill()
{

if(00_pill_indicator == "true")
	{

	translate(pill_translate)

	rotate([0,0,90])
		{
		union()
			{
			cylinder(00_pill_height,00_pill_scale,00_pill_scale, $fn=40);
			translate([0,-00_pill_scale,0])
				{
					cube([(00_pill_scale*2)*00_pill_length,00_pill_scale*2,00_pill_height]);
				}
			translate([(00_pill_scale*2)*00_pill_length,0,0])
				{
					cylinder(00_pill_height,00_pill_scale,00_pill_scale, $fn=40);
				}
			}
		}
	}
}
